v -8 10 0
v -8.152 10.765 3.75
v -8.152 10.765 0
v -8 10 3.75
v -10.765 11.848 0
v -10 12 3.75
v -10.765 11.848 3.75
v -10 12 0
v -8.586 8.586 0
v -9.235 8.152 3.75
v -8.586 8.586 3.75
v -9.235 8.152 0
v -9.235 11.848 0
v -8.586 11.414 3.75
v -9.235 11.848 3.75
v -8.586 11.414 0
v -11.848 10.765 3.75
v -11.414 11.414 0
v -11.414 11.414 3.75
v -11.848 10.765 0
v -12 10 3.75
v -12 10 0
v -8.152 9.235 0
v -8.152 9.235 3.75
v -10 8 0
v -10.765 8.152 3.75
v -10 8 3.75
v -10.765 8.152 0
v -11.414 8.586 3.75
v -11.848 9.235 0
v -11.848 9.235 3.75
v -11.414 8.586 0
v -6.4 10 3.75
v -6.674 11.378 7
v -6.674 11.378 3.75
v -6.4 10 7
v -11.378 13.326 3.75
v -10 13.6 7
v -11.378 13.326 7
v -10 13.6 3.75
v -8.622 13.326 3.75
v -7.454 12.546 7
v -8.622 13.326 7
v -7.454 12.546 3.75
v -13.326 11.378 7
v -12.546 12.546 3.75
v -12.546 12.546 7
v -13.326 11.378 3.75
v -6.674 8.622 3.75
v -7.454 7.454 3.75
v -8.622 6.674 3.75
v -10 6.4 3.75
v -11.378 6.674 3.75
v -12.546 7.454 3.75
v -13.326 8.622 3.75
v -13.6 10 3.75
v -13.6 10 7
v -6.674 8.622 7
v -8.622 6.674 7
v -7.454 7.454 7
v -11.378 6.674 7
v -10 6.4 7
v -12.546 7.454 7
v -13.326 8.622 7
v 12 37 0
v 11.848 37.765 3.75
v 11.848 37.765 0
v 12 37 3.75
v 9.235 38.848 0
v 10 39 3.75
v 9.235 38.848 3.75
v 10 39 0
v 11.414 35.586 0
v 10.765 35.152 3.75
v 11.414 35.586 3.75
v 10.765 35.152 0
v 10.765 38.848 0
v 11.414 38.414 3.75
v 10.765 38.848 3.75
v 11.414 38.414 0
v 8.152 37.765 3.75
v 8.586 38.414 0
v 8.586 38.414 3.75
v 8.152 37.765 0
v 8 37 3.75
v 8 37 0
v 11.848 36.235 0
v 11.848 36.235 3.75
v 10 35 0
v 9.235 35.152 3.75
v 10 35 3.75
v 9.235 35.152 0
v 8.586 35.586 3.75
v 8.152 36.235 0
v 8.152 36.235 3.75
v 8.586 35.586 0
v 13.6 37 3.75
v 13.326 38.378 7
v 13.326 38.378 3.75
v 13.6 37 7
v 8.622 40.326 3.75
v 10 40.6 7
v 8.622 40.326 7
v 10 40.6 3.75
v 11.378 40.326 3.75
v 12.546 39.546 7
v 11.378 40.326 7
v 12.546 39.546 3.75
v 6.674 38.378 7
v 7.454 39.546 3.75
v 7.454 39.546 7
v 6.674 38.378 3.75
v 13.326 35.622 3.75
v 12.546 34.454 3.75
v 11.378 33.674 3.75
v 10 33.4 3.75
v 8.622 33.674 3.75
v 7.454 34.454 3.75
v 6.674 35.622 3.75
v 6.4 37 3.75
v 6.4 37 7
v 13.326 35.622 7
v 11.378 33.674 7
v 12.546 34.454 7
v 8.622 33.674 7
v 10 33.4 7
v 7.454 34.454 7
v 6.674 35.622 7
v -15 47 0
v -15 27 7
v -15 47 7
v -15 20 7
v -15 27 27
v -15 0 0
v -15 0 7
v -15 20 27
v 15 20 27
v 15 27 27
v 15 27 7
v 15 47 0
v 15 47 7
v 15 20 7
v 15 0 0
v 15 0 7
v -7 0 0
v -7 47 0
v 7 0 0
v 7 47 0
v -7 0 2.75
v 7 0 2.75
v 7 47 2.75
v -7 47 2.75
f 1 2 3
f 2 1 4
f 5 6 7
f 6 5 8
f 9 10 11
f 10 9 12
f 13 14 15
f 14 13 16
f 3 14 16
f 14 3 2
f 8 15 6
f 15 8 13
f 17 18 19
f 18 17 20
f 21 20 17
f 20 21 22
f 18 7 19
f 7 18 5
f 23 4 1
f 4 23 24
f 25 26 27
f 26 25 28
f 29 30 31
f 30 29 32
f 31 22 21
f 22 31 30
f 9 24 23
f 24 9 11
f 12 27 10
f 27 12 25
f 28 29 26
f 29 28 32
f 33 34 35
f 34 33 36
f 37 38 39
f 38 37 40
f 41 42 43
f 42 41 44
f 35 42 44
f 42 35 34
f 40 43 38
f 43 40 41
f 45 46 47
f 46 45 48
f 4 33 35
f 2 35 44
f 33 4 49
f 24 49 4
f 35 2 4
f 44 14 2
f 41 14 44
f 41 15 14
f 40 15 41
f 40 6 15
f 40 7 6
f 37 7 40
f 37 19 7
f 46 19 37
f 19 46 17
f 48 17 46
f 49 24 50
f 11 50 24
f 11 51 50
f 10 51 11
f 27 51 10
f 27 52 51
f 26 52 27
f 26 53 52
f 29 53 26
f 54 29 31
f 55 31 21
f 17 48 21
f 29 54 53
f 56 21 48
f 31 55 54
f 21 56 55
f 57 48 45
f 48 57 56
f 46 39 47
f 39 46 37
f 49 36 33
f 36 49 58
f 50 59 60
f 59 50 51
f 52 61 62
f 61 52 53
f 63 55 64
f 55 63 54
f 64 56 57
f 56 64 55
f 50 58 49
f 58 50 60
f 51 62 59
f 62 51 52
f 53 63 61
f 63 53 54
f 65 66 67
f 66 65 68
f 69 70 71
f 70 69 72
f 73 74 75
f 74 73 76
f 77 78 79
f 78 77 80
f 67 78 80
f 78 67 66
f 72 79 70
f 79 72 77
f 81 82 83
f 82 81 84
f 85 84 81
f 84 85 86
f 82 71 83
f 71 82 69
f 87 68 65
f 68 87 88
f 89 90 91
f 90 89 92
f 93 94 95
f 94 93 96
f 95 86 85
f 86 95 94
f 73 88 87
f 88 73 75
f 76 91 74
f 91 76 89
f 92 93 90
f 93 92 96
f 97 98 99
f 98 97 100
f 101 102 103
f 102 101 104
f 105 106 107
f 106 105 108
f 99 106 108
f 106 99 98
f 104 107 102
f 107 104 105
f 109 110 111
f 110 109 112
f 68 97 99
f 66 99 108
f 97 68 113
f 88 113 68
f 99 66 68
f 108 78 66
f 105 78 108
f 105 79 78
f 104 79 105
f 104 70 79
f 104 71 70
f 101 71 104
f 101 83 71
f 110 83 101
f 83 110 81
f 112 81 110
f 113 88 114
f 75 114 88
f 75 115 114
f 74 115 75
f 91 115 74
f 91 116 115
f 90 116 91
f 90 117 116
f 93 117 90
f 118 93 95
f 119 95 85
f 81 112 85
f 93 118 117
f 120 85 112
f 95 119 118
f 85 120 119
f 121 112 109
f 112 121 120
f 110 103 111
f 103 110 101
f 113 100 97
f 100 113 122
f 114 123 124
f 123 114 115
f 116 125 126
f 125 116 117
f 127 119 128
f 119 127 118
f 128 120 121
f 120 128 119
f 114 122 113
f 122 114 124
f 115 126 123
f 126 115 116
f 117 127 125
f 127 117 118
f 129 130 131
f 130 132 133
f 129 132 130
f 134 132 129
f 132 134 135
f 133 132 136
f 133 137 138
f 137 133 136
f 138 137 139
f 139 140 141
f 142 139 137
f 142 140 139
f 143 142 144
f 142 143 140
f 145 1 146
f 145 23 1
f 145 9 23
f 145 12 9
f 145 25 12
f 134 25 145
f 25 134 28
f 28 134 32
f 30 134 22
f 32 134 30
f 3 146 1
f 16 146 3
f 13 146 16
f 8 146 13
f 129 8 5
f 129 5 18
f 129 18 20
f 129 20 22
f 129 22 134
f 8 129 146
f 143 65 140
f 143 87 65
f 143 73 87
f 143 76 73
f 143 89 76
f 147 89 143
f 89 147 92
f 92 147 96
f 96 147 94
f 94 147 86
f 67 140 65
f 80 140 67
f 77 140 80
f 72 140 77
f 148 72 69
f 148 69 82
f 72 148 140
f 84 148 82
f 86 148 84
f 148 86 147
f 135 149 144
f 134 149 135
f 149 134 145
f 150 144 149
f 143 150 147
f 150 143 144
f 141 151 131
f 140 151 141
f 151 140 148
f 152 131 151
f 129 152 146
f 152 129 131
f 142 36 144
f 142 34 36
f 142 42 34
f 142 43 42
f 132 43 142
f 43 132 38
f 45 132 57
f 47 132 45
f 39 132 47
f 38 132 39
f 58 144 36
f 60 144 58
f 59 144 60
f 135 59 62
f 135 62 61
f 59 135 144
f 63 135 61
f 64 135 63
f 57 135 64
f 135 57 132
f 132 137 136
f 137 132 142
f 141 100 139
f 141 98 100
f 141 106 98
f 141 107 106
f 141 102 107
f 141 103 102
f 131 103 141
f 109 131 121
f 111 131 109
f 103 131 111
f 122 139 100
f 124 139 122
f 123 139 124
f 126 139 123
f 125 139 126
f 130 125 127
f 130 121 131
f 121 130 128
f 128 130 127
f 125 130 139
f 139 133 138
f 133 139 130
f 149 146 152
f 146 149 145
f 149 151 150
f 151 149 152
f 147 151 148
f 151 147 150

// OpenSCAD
// Base is 49mm wide, 25mm deep
// Body is 39mm wide
// Tab is 16mm wide
// Locks are 6mm from back, 12mm from side, 10mm long

module screw (x, y)
{
  translate ([x, y, 0]) {
    cylinder (h=10, d=4.0, $fn=16, center=true);
  }
  translate ([x, y, 6]) {
    cylinder (h=4.5, d=7.2, $fn=16, center=true);
  }
}

translate ([-15, 0, 0]) {
  difference () {
     // Floor
    cube ([30, 47, 27]);

    // Remove cubes to create vertical
    translate ([0, 0, 7]) {
      cube ([30, 20, 27]);
    }
    translate ([0, 27, 7]) {
      cube ([30, 20, 27]);
    }
    
    // Tie-wrap
    translate ([8, 0, 0]) {
      cube ([14, 47, 2.75]);
    }
    
    //  Screw holes & head recesses
    screw (5, 10);
    screw (25, 37);
  } 
}
